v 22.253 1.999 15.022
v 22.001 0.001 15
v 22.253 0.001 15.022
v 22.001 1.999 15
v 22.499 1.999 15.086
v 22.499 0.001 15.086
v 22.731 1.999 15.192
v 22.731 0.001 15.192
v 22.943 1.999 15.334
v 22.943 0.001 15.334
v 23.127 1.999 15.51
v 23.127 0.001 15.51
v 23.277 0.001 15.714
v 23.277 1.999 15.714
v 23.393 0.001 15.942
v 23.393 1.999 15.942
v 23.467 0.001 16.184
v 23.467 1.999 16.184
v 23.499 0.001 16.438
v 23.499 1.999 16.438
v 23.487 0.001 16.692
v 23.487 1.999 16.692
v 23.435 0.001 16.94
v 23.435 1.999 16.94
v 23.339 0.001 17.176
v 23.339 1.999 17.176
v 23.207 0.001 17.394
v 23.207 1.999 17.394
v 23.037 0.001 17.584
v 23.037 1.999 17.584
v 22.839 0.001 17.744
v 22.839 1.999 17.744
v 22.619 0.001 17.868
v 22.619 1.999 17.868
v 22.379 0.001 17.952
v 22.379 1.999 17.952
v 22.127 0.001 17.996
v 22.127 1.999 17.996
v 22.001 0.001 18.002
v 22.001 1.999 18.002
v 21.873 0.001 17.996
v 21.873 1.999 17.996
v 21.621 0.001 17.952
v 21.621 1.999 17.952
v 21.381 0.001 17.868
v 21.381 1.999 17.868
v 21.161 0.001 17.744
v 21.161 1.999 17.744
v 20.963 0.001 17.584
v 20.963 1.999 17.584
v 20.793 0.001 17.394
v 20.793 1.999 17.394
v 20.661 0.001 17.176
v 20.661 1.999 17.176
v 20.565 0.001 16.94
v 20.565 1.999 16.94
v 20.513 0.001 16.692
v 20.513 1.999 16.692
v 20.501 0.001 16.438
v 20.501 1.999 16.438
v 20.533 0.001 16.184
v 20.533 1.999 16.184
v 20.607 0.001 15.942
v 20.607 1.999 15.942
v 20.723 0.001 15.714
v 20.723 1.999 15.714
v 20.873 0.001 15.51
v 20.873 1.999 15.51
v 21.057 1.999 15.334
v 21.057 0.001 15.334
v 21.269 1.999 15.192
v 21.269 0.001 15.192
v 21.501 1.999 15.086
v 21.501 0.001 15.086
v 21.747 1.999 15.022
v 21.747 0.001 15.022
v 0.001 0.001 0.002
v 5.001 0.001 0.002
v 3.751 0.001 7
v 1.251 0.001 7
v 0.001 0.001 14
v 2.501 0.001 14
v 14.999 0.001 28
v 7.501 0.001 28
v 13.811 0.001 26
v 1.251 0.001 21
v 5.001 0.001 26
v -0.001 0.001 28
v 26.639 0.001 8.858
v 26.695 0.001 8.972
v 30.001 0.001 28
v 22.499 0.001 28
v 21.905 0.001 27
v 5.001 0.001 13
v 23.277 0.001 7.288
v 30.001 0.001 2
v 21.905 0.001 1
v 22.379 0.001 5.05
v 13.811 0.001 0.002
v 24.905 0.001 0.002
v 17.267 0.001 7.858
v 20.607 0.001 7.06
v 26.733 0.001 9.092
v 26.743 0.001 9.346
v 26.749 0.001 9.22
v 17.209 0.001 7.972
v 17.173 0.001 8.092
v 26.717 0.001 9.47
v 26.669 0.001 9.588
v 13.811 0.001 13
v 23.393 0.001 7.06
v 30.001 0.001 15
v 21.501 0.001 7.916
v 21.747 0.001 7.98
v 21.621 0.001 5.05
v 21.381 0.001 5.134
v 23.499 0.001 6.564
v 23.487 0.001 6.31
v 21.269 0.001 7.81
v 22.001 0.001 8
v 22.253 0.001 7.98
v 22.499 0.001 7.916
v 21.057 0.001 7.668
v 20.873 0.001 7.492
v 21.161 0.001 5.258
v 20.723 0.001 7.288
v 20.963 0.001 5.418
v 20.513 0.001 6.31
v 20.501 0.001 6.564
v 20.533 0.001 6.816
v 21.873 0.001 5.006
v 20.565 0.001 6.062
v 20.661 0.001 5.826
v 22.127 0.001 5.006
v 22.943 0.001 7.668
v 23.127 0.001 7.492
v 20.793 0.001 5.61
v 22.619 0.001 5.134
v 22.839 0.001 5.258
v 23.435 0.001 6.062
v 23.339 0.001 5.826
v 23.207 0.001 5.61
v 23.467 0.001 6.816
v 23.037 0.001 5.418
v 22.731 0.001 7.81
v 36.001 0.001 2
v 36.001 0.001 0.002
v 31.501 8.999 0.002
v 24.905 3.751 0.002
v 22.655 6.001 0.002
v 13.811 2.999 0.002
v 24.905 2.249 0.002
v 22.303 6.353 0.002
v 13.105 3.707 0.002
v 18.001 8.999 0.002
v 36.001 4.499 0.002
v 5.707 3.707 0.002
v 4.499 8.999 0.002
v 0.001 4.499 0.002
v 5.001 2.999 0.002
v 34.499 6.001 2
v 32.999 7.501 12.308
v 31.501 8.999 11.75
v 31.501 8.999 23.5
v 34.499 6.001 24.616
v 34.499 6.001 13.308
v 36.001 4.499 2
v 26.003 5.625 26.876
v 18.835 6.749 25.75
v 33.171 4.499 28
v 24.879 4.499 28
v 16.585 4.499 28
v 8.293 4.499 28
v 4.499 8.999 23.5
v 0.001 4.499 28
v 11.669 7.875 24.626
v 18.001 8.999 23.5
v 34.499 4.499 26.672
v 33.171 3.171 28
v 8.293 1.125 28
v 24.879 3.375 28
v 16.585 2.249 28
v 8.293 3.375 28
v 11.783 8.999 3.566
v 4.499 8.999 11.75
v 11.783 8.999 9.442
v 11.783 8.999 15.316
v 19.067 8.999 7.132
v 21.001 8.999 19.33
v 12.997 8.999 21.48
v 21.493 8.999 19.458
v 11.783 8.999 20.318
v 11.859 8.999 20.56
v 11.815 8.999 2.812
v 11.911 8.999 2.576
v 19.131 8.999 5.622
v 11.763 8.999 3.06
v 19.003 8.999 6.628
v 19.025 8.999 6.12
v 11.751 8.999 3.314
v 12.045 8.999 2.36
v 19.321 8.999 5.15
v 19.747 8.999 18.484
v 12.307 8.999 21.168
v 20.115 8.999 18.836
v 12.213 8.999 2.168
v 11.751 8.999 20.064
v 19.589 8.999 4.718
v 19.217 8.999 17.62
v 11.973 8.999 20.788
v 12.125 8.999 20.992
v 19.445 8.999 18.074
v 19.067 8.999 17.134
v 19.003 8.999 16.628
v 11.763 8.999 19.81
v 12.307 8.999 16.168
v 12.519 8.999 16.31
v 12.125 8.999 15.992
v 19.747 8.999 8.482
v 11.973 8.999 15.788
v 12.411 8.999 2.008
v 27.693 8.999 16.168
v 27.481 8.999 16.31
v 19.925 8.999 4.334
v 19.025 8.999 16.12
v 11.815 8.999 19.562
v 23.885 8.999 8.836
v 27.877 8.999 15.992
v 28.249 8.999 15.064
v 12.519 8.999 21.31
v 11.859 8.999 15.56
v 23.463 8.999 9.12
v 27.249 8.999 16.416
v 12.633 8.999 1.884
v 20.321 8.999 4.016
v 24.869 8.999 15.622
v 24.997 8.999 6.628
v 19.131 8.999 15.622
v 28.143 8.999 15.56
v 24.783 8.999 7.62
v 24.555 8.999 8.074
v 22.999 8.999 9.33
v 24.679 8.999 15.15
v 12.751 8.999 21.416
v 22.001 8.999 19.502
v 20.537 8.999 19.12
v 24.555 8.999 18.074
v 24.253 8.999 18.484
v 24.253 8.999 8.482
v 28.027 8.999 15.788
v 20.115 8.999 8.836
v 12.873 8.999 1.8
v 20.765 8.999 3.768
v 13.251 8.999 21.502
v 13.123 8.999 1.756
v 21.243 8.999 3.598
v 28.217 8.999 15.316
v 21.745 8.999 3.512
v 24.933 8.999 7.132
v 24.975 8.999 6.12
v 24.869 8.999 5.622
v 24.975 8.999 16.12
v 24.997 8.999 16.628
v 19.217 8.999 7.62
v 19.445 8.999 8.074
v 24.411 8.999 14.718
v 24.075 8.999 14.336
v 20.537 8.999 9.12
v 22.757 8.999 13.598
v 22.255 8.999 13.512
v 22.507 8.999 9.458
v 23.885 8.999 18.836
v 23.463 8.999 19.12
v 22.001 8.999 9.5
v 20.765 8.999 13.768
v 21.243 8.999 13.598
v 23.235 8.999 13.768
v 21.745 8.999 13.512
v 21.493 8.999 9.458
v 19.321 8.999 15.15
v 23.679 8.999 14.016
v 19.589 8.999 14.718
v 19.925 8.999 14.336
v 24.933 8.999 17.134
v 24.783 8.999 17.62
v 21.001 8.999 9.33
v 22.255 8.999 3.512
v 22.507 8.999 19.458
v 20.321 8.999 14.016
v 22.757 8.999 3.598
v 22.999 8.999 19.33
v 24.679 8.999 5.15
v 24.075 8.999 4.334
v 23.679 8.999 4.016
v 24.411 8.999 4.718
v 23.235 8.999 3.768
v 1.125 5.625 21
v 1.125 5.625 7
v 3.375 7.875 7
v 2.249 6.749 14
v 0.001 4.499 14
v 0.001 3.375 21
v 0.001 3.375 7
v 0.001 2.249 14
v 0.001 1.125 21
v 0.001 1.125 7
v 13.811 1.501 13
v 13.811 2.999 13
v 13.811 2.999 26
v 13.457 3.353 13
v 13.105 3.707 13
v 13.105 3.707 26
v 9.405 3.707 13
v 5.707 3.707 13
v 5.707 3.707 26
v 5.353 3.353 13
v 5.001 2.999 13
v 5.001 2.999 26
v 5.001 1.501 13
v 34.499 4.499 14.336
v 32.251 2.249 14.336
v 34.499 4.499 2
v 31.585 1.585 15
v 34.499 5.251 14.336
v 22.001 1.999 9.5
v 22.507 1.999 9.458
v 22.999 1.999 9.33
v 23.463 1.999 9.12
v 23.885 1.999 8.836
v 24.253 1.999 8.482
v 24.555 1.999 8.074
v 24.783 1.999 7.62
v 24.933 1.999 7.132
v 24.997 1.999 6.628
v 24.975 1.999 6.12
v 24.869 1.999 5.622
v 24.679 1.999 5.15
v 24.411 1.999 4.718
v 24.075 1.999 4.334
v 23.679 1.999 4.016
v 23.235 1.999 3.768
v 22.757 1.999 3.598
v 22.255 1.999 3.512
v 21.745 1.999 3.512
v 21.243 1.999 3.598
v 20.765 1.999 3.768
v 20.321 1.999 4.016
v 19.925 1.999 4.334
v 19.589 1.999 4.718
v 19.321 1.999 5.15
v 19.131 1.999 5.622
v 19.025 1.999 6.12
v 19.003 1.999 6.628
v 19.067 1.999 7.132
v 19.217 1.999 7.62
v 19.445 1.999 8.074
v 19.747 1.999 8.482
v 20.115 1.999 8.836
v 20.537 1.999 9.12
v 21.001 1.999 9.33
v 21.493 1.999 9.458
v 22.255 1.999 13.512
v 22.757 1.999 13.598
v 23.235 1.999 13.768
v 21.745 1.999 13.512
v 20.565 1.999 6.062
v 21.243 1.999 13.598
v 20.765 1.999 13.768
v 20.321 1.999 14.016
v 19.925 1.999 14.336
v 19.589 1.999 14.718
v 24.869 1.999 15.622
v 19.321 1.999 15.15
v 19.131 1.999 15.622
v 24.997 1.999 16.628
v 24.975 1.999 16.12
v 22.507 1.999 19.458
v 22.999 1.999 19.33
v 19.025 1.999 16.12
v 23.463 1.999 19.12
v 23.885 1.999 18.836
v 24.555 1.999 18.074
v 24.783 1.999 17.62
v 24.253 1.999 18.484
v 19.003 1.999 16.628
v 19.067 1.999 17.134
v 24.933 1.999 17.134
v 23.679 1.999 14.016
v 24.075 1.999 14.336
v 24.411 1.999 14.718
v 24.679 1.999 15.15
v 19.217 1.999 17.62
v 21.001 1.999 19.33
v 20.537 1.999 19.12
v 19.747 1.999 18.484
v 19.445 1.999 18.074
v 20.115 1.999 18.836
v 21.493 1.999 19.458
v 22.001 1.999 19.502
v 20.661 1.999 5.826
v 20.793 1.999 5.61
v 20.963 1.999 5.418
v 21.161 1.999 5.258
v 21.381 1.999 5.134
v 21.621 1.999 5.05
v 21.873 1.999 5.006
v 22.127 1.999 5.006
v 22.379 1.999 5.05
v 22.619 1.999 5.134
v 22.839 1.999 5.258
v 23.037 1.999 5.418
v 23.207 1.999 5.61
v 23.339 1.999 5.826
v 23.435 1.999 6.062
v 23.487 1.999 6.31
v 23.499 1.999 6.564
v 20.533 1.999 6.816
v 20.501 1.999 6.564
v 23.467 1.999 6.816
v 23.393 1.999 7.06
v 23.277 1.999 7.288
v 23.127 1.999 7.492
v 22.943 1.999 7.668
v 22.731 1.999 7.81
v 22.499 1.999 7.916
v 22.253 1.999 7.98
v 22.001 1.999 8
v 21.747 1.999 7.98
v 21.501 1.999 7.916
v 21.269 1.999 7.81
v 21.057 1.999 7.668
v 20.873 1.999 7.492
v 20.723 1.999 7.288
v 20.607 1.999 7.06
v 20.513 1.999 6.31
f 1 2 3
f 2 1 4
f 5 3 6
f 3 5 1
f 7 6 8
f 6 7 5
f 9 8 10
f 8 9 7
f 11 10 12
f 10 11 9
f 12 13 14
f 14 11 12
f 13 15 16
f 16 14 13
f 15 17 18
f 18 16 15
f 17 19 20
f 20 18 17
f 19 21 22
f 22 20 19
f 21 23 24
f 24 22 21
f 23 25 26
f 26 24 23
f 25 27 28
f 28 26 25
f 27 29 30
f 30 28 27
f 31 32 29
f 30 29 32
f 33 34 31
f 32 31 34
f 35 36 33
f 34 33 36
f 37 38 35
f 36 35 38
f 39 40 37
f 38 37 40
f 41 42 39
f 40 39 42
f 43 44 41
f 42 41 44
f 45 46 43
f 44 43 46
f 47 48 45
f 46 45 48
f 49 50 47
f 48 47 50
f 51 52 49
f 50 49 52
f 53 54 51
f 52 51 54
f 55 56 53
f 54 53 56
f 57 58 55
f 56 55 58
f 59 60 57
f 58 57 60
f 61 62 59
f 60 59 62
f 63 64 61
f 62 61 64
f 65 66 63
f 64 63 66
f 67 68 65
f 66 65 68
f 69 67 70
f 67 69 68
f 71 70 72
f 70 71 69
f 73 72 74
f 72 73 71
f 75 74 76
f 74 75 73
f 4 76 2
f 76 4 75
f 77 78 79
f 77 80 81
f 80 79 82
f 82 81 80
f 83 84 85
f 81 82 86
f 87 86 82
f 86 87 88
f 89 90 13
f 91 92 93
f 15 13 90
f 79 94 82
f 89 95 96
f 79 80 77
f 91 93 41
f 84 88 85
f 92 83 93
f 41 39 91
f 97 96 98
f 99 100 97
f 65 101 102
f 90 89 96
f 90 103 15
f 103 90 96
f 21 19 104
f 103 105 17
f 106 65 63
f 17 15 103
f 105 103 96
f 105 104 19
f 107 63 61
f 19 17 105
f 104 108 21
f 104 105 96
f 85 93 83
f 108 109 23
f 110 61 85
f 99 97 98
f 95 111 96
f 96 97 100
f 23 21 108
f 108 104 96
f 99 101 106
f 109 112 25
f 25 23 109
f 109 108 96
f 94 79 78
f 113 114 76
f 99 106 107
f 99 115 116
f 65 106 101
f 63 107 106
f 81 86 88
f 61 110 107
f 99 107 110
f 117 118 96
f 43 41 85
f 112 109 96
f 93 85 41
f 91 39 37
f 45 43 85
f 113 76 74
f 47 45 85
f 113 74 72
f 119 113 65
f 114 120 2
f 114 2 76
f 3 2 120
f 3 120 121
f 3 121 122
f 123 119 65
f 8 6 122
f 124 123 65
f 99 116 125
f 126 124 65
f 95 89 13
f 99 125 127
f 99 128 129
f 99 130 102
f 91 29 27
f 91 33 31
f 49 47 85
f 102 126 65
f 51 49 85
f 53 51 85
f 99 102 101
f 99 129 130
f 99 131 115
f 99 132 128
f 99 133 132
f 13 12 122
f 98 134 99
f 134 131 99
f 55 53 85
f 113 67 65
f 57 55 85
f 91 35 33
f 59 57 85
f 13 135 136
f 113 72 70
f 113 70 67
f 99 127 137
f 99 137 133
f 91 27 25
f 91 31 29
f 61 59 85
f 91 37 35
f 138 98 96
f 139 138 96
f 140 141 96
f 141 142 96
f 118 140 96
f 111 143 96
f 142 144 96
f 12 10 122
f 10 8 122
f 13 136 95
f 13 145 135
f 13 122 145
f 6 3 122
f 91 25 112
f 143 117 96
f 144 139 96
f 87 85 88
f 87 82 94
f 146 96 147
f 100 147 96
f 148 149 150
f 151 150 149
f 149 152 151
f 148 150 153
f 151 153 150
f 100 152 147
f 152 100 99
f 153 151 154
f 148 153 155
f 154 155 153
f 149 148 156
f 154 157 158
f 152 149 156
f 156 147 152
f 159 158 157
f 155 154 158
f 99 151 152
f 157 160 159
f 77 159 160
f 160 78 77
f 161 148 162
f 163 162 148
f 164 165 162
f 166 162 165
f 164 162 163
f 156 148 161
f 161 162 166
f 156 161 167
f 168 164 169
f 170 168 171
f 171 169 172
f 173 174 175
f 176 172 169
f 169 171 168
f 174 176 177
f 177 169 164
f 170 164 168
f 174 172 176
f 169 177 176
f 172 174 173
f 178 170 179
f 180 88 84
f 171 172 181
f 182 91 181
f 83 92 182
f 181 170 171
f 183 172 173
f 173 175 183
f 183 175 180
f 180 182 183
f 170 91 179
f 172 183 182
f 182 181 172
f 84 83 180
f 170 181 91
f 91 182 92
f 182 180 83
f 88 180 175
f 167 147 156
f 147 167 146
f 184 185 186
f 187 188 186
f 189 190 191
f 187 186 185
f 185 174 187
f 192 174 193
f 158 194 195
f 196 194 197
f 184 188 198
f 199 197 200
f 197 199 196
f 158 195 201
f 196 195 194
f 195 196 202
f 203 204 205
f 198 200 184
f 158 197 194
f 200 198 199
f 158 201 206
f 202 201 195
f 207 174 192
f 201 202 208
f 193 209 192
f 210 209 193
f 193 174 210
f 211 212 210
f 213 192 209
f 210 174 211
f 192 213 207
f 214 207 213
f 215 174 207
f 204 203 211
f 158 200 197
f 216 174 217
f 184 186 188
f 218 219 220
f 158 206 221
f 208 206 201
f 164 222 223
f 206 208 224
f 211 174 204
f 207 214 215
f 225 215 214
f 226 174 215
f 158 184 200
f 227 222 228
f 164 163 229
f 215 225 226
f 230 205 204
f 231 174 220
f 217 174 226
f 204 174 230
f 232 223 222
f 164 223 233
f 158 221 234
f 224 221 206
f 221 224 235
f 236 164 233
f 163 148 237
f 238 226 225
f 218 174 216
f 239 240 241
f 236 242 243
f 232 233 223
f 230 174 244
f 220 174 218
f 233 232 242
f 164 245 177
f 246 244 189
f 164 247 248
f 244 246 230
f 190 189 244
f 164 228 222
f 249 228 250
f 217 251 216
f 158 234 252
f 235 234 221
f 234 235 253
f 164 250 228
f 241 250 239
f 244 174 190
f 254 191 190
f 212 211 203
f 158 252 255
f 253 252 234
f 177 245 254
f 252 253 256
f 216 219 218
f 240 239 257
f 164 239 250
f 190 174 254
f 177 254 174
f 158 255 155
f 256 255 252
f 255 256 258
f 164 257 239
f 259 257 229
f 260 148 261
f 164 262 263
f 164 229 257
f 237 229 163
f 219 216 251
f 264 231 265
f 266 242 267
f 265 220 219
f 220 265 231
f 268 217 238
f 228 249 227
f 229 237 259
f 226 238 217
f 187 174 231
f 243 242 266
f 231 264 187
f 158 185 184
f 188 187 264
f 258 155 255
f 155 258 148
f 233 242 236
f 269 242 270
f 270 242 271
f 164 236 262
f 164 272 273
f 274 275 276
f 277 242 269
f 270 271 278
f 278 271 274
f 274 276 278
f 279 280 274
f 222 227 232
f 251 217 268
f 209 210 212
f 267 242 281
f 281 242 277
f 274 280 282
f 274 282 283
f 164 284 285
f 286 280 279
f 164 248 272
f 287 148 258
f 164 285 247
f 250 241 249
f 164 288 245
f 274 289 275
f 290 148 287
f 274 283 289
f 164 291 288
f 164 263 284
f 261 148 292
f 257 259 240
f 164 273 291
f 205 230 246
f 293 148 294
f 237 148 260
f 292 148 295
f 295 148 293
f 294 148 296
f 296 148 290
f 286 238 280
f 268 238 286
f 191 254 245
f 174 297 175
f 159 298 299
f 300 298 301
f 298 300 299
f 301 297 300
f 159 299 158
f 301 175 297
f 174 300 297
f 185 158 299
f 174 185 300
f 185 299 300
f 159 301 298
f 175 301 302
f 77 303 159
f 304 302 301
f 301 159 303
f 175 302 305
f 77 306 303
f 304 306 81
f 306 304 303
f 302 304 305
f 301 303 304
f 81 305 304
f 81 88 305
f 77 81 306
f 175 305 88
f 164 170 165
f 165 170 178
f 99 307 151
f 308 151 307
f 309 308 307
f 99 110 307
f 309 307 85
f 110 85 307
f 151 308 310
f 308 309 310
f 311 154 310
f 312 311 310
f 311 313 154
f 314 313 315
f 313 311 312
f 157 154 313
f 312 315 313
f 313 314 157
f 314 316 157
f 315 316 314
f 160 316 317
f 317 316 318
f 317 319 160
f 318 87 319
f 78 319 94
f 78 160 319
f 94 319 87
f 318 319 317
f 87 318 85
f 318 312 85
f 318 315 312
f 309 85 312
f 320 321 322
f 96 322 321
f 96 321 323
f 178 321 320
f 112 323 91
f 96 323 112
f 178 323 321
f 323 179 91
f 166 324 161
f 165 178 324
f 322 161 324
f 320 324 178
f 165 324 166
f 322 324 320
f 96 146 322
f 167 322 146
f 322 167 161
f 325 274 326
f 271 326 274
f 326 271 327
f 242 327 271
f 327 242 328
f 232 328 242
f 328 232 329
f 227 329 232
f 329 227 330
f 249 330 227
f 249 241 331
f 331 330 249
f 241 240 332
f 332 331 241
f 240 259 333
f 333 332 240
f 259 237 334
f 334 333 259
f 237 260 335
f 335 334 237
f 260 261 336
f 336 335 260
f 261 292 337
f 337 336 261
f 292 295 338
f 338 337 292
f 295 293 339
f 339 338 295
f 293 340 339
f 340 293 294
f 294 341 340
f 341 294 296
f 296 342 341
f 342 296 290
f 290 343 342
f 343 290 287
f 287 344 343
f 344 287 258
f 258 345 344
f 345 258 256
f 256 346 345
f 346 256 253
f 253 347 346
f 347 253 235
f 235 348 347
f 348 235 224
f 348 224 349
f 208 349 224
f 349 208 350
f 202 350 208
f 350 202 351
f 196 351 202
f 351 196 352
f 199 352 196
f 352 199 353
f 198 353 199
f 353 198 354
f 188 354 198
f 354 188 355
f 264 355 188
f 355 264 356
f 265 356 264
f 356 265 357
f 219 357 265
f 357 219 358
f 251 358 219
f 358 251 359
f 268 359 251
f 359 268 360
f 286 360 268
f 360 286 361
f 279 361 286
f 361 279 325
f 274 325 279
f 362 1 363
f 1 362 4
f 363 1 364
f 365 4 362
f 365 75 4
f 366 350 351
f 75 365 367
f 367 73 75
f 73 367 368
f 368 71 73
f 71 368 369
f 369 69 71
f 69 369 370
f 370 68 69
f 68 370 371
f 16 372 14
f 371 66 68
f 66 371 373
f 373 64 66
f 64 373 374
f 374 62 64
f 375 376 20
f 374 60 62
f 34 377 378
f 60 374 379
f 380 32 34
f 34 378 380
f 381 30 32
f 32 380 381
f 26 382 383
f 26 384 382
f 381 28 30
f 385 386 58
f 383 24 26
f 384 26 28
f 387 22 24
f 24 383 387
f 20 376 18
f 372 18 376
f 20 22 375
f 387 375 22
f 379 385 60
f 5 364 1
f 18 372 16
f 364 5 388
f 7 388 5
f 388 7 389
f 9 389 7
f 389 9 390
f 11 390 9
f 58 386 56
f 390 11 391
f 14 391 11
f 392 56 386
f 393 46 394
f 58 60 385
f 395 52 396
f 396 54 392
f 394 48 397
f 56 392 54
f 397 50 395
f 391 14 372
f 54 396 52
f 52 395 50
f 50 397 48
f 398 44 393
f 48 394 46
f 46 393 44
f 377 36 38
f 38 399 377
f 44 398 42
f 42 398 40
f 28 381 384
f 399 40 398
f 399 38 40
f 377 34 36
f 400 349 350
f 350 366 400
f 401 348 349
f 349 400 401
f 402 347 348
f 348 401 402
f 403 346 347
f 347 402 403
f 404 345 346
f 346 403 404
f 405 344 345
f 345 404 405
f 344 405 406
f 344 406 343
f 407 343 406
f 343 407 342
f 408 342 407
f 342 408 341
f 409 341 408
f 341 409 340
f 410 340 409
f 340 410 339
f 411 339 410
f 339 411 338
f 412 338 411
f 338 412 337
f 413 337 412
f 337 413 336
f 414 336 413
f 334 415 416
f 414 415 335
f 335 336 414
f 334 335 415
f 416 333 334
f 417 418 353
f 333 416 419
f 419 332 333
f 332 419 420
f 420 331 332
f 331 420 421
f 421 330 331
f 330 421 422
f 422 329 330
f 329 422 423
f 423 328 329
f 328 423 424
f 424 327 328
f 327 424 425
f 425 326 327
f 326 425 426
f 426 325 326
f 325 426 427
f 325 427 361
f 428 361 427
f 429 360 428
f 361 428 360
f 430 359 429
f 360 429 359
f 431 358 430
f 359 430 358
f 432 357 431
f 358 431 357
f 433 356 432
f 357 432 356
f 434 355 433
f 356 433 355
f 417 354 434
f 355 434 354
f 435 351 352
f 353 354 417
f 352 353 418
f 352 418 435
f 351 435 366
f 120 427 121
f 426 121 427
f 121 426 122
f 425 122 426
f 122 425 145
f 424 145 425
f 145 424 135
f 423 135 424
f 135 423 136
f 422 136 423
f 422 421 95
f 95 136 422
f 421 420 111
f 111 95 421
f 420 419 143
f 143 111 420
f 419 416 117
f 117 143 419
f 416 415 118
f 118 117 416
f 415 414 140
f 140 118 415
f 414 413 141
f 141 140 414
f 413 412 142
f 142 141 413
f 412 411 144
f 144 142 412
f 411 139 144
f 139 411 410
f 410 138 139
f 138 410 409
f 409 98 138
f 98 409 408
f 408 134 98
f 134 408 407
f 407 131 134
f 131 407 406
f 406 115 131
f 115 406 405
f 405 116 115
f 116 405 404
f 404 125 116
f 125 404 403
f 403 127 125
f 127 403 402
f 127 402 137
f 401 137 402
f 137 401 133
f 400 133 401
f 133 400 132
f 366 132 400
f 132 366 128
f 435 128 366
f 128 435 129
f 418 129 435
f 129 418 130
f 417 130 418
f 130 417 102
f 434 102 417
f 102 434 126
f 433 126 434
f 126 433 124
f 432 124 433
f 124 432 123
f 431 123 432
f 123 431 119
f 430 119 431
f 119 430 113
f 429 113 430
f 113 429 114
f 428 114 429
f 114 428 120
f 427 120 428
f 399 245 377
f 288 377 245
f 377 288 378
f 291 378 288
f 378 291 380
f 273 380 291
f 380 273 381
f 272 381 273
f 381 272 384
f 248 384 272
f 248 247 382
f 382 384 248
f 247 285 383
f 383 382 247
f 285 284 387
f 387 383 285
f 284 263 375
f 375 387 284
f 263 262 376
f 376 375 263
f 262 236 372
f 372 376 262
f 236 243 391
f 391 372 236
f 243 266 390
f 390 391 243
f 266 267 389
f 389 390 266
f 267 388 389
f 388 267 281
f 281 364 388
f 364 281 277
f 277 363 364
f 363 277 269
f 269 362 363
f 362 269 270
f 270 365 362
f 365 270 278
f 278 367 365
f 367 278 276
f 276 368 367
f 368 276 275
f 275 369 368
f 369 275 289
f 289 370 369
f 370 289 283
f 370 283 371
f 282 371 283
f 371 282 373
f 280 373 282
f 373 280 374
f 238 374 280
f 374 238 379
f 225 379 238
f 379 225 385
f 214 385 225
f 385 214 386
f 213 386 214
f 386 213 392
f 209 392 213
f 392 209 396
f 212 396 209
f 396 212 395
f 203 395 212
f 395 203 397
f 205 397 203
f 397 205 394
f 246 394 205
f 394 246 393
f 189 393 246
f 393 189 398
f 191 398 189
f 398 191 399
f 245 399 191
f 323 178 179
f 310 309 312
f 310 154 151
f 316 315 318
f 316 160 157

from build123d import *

# Parameters (mm, degrees)
SKETCH1_W               = 36
SKETCH1_H               = 9
BOSS_EXTRUDE1_DEPTH     = 28
CUT_EXTRUDE1_DEPTH      = 28
CUT_EXTRUDE2_DEPTH      = 36
SKETCH5_W               = 11.440376565
SKETCH5_H               = 15.618965423
CUT_EXTRUDE4_DEPTH      = 2
CUT_EXTRUDE5_DEPTH      = 2
CUT_EXTRUDE5_DEPTH_BACK = 2
CUT_EXTRUDE6_DEPTH      = 26
CUT_EXTRUDE7_DEPTH      = 26
SKETCH10_R              = 3
CUT_EXTRUDE8_DEPTH      = 7
SKETCH11_R              = 1.5
CUT_EXTRUDE9_DEPTH      = 2
SKETCH12_R              = 1.5
CUT_EXTRUDE10_DEPTH     = 9
SKETCH13_R              = 3
CUT_EXTRUDE11_DEPTH     = 7


with BuildPart() as part:
    # Sketch1 → Boss-Extrude1 (new body)
    with BuildSketch(Plane.XY):
        with Locations((18, 4.5)):
            Rectangle(SKETCH1_W, SKETCH1_H)
    extrude(amount=BOSS_EXTRUDE1_DEPTH)

    # Sketch2 → Cut-Extrude1 (cut)
    with BuildSketch(Plane.XY):
        Polygon((0, 4.5), (4.5, 9), (0, 9), align=None)
        Polygon((36, 4.5), (31.5, 9), (36, 9), align=None)
    extrude(amount=CUT_EXTRUDE1_DEPTH, mode=Mode.SUBTRACT)

    # Sketch3 → Cut-Extrude2 (cut)
    with BuildSketch(Plane(origin=(0, 0, 0), x_dir=(0, 0, -1), z_dir=(1, 0, 0))):
        Polygon((-28, 4.5), (-23.5, 9), (-28, 9), align=None)
    extrude(amount=CUT_EXTRUDE2_DEPTH, mode=Mode.SUBTRACT)

    # Sketch5 → Cut-Extrude4 (cut)
    with BuildSketch(Plane(origin=(32, 0, 32), x_dir=(0, 1, 0), z_dir=(0.707106781, 0, 0.707106781))):
        with Locations((5.720188283, -5.935696583)):
            Rectangle(SKETCH5_W, SKETCH5_H)
    extrude(amount=-CUT_EXTRUDE4_DEPTH, mode=Mode.SUBTRACT)

    # Sketch6 → Cut-Extrude5 (cut, two sides)
    with BuildSketch(Plane(origin=(4, 0, -4), x_dir=(0.577350269, -0.577350269, 0.577350269), z_dir=(-0.707106781, 0, 0.707106781))) as cut_extrude5_sk:
        Polygon((26.558112383, 29.802125204), (32.719347855, 28.647424665), (30.19862658, 32.212262879), align=None)
    extrude(amount=CUT_EXTRUDE5_DEPTH, mode=Mode.SUBTRACT)
    extrude(cut_extrude5_sk.sketch, amount=-CUT_EXTRUDE5_DEPTH_BACK, mode=Mode.SUBTRACT)

    # Sketch7 → Cut-Extrude6 (cut)
    with BuildSketch(Plane.XY):
        Polygon((5, 0), (5, 3), (5.707106781, 3.707106781), (13.104524105, 3.707106781), (13.811630886, 3), (13.811630886, 0), align=None)
    extrude(amount=CUT_EXTRUDE6_DEPTH, mode=Mode.SUBTRACT)

    # Sketch8 → Cut-Extrude7 (cut)
    with BuildSketch(Plane.XY.offset(28)):
        Polygon((36, 0), (30, 0), (34.5, 4.5), (34.5, 6), (36, 6), align=None)
    extrude(amount=-CUT_EXTRUDE7_DEPTH, mode=Mode.SUBTRACT)

    # Sketch10 → Cut-Extrude8 (cut)
    with BuildSketch(Plane(origin=(0, 9, 0), x_dir=(1, 0, 0), z_dir=(0, 1, 0))):
        with Locations((22, -6.5)):
            Circle(SKETCH10_R)
    extrude(amount=-CUT_EXTRUDE8_DEPTH, mode=Mode.SUBTRACT)

    # Sketch11 → Cut-Extrude9 (cut)
    with BuildSketch(Plane(origin=(0, 2, 0), x_dir=(1, 0, 0), z_dir=(0, 1, 0))):
        with Locations((22, -6.5)):
            Circle(SKETCH11_R)
    extrude(amount=-CUT_EXTRUDE9_DEPTH, mode=Mode.SUBTRACT)

    # Sketch12 → Cut-Extrude10 (cut)
    with BuildSketch(Plane(origin=(0, 0, 0), x_dir=(1, 0, 0), z_dir=(0, 1, 0))):
        with Locations((22, -16.5)):
            Circle(SKETCH12_R)
    extrude(amount=CUT_EXTRUDE10_DEPTH, mode=Mode.SUBTRACT)

    # Sketch13 → Cut-Extrude11 (cut)
    with BuildSketch(Plane(origin=(0, 9, 0), x_dir=(1, 0, 0), z_dir=(0, 1, 0))):
        with Locations((22, -16.5)):
            Circle(SKETCH13_R)
    extrude(amount=-CUT_EXTRUDE11_DEPTH, mode=Mode.SUBTRACT)


solid = part.part
